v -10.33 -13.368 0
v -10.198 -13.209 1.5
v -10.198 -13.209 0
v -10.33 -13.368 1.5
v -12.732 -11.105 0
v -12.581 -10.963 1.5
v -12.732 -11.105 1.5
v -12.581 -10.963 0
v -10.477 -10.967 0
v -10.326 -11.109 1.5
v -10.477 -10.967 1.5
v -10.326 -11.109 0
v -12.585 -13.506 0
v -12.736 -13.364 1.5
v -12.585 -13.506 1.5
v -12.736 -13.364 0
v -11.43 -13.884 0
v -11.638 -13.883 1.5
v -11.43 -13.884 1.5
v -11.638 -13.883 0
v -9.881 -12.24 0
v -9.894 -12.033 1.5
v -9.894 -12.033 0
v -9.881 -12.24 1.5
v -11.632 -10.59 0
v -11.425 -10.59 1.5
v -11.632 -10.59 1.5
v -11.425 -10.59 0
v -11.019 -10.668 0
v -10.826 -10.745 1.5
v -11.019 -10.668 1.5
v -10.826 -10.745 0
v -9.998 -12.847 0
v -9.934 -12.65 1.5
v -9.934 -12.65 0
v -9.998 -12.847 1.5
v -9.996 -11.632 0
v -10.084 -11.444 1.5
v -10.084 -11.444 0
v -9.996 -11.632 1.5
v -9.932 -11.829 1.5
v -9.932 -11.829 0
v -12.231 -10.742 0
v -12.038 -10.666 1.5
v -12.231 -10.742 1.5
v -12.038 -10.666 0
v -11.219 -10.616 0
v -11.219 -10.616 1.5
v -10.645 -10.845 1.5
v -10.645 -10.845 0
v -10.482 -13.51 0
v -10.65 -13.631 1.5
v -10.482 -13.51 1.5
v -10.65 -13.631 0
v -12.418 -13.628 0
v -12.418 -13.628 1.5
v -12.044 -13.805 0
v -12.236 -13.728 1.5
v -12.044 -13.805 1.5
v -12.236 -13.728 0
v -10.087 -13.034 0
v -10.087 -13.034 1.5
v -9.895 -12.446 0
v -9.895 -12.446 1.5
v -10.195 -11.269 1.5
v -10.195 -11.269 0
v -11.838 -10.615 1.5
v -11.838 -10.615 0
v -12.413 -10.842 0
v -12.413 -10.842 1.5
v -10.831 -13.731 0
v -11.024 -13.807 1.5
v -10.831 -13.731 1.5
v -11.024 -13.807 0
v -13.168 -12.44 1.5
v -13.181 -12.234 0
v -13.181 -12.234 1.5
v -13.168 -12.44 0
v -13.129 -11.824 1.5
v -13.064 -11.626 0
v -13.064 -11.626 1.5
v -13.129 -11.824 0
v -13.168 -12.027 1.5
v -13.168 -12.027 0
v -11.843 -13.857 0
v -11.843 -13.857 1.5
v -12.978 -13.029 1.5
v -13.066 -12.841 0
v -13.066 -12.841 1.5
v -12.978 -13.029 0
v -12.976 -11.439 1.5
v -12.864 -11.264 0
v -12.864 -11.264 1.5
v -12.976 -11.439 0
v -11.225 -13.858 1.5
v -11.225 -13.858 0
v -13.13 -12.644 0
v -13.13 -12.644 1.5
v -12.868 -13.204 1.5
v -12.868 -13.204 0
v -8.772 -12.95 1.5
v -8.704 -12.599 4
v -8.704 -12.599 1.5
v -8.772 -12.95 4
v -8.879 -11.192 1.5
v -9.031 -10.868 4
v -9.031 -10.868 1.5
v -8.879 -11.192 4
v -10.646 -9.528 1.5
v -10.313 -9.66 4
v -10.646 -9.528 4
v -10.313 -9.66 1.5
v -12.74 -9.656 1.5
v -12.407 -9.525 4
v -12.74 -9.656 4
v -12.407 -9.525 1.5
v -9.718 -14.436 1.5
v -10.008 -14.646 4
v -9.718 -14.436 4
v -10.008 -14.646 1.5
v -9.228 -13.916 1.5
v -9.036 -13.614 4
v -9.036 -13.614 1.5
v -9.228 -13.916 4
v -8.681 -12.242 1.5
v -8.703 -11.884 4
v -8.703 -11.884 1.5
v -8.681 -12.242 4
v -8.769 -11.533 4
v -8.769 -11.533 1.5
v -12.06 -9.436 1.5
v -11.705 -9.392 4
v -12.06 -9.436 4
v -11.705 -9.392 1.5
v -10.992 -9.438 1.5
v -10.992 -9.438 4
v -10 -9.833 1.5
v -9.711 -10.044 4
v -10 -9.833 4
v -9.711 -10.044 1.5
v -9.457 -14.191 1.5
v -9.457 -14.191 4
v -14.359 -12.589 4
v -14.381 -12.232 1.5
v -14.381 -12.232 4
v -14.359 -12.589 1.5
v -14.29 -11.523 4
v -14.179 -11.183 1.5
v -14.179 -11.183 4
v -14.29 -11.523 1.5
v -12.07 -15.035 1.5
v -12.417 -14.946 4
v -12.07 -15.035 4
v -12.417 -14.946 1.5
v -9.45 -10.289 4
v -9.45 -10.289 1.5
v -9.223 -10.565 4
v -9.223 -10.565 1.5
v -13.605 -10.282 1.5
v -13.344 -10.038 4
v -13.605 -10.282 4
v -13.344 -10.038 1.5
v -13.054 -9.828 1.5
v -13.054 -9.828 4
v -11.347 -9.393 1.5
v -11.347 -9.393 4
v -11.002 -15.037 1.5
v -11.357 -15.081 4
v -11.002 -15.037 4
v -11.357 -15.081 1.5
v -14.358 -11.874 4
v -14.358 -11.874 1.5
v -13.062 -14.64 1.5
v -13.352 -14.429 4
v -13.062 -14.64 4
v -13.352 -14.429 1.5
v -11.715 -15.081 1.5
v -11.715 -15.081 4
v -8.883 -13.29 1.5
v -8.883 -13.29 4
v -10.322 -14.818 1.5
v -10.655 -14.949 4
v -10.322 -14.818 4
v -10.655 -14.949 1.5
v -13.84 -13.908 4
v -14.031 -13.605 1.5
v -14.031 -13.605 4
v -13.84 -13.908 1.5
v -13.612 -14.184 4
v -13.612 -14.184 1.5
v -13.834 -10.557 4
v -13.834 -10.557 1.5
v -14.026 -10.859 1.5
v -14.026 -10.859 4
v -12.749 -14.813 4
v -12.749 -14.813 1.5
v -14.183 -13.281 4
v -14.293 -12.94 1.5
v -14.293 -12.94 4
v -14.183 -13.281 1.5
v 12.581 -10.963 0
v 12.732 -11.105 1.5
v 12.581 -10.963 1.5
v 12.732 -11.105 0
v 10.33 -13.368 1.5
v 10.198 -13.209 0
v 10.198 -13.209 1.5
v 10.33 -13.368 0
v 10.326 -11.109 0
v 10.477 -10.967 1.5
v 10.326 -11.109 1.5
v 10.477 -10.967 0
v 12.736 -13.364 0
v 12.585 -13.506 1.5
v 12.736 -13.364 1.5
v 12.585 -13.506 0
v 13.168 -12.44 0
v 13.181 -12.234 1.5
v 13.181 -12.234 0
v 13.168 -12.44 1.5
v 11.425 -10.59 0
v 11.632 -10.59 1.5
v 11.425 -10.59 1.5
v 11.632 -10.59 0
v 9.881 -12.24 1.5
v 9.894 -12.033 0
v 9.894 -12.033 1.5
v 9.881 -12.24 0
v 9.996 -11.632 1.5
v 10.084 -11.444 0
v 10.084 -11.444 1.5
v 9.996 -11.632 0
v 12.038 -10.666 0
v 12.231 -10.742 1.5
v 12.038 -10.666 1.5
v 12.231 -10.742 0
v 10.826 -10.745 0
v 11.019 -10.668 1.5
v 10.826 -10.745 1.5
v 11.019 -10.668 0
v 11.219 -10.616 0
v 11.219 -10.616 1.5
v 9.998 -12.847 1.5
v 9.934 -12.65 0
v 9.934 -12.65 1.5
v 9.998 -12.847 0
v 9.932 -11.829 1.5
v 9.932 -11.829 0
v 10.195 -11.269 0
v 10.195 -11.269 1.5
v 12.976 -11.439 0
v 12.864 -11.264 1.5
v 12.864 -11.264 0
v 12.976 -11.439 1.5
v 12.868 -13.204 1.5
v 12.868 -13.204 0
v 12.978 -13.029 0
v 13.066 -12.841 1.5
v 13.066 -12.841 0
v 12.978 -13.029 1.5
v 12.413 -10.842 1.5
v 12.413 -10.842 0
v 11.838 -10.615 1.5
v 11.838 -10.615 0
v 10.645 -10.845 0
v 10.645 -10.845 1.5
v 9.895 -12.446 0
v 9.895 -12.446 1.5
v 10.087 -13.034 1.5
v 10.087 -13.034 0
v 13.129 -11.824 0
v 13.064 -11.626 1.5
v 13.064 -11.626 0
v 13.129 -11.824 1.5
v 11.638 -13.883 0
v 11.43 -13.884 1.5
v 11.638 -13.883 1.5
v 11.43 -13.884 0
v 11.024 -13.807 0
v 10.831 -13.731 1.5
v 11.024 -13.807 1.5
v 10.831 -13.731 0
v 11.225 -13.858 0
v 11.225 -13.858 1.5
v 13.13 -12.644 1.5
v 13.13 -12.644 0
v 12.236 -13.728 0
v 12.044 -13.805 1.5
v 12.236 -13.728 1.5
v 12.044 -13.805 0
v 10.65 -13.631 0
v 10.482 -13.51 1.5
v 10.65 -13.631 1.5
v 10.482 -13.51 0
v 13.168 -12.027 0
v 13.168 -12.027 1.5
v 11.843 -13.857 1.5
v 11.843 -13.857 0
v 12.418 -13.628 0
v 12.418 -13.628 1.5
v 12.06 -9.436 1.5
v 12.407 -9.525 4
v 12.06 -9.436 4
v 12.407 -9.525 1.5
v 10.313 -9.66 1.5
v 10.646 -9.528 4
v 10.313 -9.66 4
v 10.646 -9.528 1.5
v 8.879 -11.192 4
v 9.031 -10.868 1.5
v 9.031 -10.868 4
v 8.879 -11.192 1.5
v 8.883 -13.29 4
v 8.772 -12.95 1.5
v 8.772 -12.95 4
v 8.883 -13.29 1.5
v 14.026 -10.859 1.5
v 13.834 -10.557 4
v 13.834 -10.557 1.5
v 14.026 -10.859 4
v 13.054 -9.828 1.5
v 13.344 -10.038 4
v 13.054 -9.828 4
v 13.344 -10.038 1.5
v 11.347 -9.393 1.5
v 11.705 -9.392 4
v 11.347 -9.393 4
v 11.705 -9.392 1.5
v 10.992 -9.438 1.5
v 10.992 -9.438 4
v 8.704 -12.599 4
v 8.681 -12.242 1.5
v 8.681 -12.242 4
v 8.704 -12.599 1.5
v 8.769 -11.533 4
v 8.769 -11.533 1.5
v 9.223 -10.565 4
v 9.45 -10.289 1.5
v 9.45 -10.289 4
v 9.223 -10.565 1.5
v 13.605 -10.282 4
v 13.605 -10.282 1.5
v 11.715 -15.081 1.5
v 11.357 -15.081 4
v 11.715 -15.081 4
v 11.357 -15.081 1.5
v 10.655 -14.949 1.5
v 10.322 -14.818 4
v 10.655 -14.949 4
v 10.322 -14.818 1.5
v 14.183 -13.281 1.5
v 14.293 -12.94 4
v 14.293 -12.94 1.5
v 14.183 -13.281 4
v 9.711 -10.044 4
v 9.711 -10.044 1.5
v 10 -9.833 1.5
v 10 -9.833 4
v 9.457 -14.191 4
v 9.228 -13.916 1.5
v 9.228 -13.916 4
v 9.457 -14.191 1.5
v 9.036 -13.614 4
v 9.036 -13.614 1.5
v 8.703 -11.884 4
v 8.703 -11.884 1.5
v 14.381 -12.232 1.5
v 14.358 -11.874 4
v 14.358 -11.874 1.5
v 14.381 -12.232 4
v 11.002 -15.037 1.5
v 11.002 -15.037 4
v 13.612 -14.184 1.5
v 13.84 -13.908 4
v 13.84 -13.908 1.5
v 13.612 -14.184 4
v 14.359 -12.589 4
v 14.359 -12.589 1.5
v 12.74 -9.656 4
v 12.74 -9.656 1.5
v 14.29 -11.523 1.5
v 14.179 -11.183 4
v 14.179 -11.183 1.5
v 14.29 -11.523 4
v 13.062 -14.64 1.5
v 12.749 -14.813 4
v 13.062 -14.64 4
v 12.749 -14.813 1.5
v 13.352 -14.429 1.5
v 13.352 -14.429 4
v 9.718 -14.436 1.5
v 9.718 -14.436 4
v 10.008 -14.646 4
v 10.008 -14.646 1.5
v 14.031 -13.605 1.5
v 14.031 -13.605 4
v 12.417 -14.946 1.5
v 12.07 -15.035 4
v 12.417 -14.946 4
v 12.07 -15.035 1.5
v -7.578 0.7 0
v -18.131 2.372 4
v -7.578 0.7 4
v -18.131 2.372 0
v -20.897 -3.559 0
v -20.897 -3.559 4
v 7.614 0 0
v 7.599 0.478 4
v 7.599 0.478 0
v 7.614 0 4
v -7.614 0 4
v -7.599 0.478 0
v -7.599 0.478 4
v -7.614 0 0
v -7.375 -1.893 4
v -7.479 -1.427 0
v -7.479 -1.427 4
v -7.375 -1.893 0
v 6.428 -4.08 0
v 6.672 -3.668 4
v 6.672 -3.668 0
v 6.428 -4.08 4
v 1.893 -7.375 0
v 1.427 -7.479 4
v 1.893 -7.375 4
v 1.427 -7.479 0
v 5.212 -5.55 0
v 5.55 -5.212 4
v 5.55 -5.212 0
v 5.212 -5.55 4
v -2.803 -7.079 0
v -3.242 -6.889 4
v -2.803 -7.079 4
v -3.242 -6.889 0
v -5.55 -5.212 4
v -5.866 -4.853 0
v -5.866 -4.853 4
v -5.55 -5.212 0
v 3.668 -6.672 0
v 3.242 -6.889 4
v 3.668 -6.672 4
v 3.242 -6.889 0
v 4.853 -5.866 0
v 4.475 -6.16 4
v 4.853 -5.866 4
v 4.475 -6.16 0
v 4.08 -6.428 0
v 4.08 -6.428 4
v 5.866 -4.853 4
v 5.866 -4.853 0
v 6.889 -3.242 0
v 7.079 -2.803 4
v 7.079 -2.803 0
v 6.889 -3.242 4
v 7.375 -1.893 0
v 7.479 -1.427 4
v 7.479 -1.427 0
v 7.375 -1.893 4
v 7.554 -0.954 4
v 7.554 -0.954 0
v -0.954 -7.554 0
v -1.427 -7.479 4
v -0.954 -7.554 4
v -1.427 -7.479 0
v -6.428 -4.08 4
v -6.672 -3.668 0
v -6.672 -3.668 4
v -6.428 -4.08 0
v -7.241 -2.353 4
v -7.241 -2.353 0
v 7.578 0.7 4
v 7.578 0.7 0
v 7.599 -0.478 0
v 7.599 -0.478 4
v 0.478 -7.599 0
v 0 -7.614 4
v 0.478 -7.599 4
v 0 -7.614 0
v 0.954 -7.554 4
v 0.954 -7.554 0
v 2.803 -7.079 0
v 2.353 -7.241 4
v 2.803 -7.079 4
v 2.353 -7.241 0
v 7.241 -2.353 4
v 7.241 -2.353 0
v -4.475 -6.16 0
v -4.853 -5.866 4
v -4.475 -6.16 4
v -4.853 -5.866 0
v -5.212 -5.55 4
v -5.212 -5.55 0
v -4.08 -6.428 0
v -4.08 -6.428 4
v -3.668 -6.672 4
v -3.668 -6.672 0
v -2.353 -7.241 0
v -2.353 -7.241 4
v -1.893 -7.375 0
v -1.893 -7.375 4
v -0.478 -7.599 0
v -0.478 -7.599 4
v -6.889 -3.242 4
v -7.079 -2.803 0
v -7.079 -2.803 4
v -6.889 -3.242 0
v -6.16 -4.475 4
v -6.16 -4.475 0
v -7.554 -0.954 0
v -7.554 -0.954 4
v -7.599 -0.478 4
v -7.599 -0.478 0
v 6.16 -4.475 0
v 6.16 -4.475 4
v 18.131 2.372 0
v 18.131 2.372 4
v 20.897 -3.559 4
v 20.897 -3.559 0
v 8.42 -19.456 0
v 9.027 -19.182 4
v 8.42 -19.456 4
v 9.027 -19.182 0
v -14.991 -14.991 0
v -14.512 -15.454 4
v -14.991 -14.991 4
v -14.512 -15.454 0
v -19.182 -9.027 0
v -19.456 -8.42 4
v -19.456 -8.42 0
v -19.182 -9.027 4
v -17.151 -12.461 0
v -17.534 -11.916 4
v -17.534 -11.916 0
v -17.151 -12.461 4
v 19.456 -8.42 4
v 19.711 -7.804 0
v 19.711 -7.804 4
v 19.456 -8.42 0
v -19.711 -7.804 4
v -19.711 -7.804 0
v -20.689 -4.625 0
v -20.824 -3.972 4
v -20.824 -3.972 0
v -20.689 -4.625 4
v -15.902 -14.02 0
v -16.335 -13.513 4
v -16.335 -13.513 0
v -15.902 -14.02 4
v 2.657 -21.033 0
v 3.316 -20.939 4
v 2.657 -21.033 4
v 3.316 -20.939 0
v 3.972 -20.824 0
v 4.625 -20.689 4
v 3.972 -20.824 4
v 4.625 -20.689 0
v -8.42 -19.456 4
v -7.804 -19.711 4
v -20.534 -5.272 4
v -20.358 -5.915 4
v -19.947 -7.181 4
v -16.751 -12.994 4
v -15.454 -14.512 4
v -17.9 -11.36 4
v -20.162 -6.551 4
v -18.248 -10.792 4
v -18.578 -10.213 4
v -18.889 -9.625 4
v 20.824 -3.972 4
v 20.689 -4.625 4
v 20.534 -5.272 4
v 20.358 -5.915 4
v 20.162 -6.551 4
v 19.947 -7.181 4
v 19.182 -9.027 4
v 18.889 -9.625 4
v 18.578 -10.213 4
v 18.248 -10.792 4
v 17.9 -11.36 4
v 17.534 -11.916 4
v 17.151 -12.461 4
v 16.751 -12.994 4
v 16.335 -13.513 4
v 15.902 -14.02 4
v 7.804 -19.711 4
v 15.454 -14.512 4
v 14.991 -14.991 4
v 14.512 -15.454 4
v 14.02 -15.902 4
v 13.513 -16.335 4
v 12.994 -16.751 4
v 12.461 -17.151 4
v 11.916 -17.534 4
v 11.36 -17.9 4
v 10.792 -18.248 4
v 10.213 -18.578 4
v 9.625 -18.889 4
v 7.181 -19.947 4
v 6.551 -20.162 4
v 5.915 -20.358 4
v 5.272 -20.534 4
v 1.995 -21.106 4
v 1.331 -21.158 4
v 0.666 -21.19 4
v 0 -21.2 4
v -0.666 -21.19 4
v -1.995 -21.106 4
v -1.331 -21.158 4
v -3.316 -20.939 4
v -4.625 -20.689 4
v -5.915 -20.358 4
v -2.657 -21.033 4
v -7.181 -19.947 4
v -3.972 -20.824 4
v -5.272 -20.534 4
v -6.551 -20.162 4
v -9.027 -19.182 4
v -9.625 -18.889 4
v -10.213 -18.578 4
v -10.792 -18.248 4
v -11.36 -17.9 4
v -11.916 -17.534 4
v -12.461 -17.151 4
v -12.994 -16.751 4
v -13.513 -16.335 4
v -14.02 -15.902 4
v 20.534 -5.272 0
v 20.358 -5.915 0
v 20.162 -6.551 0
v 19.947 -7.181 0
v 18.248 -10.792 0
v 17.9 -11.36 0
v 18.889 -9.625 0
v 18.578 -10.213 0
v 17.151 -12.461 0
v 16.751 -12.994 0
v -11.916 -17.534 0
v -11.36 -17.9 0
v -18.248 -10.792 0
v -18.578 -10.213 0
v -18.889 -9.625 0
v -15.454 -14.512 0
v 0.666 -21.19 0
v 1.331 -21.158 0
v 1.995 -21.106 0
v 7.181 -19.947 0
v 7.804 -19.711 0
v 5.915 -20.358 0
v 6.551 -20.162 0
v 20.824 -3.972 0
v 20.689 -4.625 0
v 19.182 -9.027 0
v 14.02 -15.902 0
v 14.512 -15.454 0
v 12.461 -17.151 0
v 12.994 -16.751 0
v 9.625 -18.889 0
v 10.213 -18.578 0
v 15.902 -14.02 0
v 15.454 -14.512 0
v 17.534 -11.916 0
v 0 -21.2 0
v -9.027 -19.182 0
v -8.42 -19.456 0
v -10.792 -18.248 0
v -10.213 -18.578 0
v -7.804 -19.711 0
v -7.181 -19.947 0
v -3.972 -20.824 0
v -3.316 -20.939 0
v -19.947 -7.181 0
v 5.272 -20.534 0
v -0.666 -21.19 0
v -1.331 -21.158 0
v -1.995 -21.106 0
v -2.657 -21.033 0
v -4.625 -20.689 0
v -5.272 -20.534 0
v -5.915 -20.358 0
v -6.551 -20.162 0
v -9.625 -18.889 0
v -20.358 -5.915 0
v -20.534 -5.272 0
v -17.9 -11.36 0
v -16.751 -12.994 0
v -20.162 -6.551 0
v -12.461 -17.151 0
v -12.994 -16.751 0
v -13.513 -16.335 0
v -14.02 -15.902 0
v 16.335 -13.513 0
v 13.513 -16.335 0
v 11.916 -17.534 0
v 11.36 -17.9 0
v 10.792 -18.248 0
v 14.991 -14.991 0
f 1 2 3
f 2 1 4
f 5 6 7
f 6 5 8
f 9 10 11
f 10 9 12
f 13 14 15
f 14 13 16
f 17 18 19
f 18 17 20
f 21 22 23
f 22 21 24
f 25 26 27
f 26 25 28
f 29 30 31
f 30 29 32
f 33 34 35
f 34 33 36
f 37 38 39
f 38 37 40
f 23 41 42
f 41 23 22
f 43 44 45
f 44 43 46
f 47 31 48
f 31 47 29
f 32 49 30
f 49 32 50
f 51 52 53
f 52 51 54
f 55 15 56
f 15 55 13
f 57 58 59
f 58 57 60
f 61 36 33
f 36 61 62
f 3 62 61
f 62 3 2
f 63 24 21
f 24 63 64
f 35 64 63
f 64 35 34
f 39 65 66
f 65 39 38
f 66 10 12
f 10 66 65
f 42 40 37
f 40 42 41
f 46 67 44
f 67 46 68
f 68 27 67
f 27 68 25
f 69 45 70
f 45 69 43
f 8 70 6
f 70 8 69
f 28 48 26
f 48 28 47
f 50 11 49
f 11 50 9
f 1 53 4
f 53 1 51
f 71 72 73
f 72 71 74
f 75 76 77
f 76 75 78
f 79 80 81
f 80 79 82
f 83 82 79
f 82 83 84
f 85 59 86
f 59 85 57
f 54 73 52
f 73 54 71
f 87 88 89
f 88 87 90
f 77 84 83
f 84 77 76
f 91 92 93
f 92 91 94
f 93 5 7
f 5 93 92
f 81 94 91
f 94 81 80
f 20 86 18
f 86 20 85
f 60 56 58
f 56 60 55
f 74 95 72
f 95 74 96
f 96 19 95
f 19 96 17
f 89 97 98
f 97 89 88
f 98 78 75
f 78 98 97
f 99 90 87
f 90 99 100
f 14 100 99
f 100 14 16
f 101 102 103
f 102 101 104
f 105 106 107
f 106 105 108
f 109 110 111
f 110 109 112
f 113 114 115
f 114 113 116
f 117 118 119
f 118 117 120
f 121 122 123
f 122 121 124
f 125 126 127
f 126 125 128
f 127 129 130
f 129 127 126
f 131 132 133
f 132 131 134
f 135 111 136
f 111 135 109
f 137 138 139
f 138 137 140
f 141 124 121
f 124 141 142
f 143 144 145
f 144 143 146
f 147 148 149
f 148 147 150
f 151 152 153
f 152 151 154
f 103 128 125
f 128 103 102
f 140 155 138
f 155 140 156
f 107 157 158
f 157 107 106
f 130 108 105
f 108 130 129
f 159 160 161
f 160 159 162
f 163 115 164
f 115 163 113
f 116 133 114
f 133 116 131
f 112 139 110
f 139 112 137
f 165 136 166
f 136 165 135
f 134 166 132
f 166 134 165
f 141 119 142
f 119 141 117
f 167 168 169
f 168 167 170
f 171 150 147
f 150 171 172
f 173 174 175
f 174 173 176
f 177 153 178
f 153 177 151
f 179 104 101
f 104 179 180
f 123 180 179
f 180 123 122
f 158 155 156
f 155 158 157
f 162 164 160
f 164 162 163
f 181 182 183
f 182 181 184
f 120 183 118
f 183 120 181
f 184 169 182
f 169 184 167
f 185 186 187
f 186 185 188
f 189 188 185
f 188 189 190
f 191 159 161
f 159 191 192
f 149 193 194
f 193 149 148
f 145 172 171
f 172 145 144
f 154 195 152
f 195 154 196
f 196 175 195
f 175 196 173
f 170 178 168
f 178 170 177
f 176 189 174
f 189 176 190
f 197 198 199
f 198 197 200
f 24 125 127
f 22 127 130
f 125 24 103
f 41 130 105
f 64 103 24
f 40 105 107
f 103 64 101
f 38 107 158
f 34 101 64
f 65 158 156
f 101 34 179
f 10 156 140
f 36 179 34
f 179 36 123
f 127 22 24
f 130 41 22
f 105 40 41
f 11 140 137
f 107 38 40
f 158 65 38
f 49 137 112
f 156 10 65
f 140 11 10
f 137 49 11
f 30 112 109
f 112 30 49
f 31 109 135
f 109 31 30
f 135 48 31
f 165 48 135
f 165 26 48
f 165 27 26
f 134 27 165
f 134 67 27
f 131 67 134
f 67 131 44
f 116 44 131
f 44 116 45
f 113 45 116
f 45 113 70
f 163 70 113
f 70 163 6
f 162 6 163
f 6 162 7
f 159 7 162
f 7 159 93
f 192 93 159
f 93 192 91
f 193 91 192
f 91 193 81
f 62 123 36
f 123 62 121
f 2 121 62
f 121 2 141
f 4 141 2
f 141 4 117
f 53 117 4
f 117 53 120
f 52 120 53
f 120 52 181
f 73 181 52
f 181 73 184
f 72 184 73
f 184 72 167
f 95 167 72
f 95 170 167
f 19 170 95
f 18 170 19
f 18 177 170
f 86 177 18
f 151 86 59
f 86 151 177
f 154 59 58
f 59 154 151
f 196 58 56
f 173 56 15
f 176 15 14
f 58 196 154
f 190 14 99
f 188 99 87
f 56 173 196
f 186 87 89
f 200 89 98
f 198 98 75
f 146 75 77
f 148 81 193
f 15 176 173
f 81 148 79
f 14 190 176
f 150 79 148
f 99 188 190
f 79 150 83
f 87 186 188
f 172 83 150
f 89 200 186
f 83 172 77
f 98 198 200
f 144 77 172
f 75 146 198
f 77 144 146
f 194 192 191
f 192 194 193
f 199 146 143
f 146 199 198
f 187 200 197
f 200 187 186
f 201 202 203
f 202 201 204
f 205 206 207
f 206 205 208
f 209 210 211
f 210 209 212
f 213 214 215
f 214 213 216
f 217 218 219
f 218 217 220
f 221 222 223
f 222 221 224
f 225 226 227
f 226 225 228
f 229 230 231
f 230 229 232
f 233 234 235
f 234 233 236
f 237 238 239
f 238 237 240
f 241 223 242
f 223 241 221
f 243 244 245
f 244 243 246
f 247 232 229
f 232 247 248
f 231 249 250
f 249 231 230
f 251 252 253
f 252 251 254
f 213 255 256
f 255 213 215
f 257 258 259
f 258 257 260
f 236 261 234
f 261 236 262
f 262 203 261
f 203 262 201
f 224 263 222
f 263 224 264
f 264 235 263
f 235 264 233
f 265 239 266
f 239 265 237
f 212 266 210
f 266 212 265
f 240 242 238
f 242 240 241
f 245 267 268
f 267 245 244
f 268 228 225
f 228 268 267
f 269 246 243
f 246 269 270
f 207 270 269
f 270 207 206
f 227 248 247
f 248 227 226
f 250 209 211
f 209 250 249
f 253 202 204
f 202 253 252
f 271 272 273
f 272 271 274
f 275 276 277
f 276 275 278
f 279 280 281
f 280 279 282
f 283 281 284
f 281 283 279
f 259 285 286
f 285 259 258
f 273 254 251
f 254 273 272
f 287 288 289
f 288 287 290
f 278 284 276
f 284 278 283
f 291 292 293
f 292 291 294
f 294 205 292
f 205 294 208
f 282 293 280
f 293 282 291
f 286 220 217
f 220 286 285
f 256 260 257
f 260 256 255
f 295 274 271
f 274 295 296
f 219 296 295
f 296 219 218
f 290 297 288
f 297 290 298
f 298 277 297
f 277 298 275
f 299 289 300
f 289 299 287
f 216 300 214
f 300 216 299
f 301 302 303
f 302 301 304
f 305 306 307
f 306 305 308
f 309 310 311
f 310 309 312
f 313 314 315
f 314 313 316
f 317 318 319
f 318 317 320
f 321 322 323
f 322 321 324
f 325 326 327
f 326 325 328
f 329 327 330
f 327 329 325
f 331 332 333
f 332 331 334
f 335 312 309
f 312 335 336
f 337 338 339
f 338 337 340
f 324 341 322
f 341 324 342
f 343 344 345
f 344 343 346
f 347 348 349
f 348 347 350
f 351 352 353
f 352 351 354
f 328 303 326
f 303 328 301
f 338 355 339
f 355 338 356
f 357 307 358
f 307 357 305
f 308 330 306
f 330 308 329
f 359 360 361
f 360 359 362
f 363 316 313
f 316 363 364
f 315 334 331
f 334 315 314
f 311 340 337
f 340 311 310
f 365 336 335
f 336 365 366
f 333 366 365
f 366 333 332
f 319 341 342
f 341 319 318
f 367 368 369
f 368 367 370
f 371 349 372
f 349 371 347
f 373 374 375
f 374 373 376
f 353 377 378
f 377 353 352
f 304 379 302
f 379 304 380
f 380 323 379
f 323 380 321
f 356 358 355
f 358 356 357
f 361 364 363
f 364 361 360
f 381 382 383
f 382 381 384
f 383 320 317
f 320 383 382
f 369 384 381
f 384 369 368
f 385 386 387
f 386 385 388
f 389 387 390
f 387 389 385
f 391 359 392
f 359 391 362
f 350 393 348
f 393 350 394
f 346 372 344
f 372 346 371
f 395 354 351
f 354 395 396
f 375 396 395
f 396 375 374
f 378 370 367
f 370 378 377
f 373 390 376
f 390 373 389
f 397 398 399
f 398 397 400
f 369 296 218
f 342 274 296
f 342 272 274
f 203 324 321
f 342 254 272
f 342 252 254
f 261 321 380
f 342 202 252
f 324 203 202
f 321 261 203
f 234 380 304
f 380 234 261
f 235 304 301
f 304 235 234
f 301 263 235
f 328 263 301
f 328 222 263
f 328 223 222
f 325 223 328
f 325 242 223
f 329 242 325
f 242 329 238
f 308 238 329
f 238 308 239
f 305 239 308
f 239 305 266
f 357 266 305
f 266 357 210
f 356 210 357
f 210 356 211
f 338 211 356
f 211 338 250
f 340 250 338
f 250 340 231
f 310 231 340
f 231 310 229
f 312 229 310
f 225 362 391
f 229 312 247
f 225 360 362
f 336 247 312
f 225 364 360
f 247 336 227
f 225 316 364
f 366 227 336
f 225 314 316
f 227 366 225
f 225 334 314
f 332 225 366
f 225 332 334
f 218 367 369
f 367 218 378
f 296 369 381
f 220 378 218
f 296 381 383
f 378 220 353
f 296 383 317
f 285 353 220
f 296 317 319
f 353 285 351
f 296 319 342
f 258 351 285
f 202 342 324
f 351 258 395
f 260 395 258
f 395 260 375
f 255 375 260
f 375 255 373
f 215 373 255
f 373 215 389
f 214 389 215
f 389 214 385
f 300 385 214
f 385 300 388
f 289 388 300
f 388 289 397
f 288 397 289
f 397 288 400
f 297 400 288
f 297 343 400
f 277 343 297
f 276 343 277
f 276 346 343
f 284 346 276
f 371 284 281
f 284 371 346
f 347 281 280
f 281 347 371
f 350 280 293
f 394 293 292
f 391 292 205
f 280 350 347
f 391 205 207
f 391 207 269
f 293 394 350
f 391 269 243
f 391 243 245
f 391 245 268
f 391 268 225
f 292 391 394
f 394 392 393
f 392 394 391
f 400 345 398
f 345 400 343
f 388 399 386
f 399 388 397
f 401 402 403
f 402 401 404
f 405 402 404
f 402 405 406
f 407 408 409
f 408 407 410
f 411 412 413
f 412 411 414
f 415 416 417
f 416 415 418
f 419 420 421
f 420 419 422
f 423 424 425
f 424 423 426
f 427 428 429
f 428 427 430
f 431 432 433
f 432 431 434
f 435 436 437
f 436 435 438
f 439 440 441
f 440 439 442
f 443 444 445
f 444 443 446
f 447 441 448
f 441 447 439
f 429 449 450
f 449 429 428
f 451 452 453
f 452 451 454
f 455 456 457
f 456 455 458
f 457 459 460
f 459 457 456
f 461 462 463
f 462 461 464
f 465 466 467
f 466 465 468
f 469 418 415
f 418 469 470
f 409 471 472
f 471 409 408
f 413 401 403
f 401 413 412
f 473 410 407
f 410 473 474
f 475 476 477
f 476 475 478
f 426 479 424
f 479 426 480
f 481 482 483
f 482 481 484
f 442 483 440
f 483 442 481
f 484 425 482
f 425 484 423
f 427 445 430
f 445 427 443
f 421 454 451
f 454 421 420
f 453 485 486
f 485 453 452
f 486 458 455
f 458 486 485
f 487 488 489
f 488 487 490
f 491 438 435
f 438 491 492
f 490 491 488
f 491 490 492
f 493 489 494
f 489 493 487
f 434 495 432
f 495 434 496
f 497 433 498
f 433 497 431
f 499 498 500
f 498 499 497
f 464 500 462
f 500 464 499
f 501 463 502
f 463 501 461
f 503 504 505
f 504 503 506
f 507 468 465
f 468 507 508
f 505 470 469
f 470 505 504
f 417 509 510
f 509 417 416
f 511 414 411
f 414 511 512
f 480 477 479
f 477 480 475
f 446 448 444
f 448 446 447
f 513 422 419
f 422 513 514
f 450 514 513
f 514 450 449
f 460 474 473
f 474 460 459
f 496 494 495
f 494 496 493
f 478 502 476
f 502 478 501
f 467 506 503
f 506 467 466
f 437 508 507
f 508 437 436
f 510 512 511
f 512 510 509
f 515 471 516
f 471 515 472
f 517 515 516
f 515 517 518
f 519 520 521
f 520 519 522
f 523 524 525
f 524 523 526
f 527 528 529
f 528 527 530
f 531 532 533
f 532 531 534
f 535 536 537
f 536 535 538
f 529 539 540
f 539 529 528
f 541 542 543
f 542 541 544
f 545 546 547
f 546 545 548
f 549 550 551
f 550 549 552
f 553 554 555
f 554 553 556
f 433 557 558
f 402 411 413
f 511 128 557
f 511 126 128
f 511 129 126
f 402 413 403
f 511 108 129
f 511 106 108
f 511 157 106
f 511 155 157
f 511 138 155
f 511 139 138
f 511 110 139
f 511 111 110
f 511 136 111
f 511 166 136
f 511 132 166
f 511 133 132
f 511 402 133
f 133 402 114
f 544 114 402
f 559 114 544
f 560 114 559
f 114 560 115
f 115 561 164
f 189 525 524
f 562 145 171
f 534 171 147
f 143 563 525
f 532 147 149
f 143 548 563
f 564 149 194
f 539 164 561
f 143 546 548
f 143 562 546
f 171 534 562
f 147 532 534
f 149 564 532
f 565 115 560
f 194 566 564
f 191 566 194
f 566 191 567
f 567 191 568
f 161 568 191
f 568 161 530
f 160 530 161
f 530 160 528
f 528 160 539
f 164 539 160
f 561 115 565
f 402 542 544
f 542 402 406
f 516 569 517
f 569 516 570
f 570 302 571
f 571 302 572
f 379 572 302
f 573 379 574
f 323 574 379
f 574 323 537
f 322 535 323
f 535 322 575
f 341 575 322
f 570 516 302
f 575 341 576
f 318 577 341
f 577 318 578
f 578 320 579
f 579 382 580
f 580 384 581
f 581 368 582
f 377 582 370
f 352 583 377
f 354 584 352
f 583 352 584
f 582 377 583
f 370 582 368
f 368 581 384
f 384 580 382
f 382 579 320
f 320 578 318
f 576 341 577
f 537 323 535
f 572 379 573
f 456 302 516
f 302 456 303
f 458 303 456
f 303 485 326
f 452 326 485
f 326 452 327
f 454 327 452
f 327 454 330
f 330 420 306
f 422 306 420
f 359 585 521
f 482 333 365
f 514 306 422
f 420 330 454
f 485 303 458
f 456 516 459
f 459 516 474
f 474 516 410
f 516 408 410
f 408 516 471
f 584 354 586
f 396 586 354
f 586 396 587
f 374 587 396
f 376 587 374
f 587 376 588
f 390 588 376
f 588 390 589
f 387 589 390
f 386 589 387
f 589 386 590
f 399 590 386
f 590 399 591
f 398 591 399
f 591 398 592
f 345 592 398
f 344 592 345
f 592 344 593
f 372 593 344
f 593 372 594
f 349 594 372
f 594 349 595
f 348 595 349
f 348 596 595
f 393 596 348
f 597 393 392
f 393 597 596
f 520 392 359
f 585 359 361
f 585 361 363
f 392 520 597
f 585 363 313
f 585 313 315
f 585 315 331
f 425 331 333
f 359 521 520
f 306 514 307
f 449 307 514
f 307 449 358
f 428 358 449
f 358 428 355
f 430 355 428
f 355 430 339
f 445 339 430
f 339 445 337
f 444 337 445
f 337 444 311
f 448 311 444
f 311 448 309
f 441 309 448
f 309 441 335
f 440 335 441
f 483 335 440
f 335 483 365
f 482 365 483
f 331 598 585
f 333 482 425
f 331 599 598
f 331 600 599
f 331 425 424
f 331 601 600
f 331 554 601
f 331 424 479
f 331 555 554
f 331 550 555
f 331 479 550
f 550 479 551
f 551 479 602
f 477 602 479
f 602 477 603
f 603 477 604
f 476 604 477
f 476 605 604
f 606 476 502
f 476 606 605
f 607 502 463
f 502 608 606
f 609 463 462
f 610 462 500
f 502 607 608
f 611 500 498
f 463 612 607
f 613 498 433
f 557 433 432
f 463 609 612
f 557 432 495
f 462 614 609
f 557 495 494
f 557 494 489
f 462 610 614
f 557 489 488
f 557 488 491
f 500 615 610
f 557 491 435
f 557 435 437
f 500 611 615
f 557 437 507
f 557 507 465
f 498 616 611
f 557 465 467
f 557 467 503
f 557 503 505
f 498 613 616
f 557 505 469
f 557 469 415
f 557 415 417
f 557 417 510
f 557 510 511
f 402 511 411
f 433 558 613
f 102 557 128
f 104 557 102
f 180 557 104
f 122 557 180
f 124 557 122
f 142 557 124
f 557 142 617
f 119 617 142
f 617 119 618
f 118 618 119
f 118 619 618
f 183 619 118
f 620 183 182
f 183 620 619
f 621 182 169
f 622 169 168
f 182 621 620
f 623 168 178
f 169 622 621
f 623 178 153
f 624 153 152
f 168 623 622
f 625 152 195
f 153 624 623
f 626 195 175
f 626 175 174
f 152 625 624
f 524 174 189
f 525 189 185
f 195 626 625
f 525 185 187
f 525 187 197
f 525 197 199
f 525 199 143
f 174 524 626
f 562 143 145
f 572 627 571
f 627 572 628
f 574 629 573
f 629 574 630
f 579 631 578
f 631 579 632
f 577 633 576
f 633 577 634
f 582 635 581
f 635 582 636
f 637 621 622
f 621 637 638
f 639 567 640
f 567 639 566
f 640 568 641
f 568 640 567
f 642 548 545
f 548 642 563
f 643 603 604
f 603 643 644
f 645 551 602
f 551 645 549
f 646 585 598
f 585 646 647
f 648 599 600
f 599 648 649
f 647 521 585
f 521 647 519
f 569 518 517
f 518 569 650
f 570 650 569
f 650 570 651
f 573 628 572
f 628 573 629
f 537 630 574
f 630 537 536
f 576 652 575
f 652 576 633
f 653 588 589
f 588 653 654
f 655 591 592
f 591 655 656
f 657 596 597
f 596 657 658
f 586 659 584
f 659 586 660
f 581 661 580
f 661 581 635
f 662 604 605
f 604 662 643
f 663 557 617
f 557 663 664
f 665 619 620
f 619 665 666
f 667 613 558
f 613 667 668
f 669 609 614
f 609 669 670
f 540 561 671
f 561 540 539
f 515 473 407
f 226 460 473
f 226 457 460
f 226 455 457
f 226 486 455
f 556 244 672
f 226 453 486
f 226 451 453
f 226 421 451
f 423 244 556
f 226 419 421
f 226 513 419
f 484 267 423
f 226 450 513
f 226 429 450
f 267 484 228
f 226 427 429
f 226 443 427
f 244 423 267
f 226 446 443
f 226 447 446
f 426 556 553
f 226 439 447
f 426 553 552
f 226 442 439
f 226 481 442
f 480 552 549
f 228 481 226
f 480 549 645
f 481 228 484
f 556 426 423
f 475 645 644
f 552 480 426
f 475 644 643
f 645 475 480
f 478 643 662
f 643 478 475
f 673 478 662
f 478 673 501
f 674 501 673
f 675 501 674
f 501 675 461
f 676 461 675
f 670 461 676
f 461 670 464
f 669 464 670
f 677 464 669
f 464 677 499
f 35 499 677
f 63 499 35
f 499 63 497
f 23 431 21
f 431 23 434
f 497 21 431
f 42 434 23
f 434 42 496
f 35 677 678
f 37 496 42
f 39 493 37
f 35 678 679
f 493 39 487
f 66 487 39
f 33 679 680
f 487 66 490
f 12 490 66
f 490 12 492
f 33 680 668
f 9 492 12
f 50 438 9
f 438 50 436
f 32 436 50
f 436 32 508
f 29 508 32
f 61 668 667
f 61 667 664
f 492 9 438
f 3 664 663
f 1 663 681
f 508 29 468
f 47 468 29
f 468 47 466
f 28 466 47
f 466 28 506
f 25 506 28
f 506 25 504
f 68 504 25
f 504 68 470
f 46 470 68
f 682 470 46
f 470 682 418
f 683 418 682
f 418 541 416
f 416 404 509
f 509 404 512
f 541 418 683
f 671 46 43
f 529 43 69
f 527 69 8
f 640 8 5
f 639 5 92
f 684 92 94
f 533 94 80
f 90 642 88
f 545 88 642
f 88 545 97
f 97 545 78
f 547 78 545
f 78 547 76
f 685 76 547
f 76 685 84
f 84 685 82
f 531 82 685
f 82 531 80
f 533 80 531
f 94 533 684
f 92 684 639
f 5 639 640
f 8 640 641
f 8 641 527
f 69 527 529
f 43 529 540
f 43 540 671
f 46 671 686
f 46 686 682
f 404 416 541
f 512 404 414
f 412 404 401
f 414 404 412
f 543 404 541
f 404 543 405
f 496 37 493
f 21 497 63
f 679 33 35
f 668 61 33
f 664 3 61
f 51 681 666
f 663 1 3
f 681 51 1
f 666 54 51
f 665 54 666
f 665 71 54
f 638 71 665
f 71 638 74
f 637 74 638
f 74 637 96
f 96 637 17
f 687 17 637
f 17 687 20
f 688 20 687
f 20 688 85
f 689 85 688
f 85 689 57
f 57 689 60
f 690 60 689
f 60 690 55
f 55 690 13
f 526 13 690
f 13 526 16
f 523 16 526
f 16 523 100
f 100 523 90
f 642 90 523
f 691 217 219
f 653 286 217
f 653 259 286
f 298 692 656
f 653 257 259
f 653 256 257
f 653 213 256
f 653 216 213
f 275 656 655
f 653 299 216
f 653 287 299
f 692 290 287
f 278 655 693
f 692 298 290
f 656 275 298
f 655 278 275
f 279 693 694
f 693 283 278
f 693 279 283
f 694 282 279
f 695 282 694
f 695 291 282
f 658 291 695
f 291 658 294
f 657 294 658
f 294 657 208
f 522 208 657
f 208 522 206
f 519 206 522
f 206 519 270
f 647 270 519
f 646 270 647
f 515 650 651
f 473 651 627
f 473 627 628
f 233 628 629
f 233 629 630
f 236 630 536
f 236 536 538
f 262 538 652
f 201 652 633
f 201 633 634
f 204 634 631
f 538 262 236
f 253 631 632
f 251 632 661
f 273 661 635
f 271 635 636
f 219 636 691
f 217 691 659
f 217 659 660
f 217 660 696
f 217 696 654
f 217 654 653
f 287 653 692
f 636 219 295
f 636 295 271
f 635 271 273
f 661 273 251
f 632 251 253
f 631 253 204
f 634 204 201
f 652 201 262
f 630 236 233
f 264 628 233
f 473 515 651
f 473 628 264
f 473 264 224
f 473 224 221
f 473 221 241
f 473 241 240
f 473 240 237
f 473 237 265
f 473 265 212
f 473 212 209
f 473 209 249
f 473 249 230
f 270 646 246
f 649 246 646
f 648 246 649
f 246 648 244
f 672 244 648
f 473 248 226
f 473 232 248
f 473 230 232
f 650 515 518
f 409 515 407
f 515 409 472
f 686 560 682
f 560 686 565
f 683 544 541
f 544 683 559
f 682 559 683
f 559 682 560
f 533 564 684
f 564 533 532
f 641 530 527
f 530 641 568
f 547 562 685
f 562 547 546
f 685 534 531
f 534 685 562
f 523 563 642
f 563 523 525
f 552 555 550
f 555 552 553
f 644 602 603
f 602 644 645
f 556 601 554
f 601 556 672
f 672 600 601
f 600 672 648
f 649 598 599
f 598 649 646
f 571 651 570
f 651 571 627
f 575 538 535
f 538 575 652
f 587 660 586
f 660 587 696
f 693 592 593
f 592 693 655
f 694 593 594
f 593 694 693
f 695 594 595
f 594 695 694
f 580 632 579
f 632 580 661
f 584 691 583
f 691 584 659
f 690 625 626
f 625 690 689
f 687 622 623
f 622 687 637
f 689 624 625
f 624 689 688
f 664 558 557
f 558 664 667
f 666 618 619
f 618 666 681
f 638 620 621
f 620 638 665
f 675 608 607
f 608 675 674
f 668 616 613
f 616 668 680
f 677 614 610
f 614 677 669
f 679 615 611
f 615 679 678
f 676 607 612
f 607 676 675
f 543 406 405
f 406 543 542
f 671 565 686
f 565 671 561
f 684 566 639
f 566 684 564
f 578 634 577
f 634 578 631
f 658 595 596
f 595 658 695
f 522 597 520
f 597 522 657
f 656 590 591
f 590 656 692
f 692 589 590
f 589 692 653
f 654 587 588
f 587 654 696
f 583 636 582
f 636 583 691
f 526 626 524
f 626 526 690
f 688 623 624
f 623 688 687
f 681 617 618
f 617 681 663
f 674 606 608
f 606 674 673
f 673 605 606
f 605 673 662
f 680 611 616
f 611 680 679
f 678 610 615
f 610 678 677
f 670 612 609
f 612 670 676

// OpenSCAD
/**
 * 
 * Cam Pendulum
 * 
 * Modified cam pendulum for Dondolo extruder. Visit http://www.thingiverse.com/thing:673816
 * 
 * Created by Diego Viejo
 * 
 */

height = 4;
diam1 = 15.2275;
diam2 = 42.4;
screewsRad = diam1/2 + 9.20;
extraWidth = 1; //This is the main difference from the original part

module camPendulum()
{
  difference()
  {
    cylinder(d=diam2, h=height, $fn=200);
    
    translate([0, 0, -1]) 
    {
      cylinder(d = diam1, h = height+2, $fn=100);
      
      for(i=[-1, 1]) rotate(i*43.3) translate([0, -screewsRad, 0]) 
      {
	cylinder(r=1.65, h=height+2, $fn=50);
	translate([0, 0, 2.5]) cylinder(r=2.85,, h=height, $fn=50); 
      }

      translate([0, -0.5, 0]) rotate(9) cube([diam2/2, diam2/2, height+2]);
      translate([diam2/2+1.7+extraWidth, -10, 0]) rotate(25) cube([diam2, diam2, height+2]);


      mirror([1, 0, 0]) 
      {
	translate([0, -0.5, 0]) rotate(9) cube([diam2/2, diam2/2, height+2]);
	translate([diam2/2+1.7+extraWidth, -10, 0]) rotate(25) cube([diam2, diam2, height+2]);
      }
      
      translate([-diam2/2, diam1, 0]) cube([diam2, diam2/2, height+2]);
    }
    
    
  }
}

*translate([-92, -92, -17])
import("/home/dviejo/Documents/Piezas3D/Dondolo_v1.0b/Camma_Pendulum.STL");

camPendulum();
